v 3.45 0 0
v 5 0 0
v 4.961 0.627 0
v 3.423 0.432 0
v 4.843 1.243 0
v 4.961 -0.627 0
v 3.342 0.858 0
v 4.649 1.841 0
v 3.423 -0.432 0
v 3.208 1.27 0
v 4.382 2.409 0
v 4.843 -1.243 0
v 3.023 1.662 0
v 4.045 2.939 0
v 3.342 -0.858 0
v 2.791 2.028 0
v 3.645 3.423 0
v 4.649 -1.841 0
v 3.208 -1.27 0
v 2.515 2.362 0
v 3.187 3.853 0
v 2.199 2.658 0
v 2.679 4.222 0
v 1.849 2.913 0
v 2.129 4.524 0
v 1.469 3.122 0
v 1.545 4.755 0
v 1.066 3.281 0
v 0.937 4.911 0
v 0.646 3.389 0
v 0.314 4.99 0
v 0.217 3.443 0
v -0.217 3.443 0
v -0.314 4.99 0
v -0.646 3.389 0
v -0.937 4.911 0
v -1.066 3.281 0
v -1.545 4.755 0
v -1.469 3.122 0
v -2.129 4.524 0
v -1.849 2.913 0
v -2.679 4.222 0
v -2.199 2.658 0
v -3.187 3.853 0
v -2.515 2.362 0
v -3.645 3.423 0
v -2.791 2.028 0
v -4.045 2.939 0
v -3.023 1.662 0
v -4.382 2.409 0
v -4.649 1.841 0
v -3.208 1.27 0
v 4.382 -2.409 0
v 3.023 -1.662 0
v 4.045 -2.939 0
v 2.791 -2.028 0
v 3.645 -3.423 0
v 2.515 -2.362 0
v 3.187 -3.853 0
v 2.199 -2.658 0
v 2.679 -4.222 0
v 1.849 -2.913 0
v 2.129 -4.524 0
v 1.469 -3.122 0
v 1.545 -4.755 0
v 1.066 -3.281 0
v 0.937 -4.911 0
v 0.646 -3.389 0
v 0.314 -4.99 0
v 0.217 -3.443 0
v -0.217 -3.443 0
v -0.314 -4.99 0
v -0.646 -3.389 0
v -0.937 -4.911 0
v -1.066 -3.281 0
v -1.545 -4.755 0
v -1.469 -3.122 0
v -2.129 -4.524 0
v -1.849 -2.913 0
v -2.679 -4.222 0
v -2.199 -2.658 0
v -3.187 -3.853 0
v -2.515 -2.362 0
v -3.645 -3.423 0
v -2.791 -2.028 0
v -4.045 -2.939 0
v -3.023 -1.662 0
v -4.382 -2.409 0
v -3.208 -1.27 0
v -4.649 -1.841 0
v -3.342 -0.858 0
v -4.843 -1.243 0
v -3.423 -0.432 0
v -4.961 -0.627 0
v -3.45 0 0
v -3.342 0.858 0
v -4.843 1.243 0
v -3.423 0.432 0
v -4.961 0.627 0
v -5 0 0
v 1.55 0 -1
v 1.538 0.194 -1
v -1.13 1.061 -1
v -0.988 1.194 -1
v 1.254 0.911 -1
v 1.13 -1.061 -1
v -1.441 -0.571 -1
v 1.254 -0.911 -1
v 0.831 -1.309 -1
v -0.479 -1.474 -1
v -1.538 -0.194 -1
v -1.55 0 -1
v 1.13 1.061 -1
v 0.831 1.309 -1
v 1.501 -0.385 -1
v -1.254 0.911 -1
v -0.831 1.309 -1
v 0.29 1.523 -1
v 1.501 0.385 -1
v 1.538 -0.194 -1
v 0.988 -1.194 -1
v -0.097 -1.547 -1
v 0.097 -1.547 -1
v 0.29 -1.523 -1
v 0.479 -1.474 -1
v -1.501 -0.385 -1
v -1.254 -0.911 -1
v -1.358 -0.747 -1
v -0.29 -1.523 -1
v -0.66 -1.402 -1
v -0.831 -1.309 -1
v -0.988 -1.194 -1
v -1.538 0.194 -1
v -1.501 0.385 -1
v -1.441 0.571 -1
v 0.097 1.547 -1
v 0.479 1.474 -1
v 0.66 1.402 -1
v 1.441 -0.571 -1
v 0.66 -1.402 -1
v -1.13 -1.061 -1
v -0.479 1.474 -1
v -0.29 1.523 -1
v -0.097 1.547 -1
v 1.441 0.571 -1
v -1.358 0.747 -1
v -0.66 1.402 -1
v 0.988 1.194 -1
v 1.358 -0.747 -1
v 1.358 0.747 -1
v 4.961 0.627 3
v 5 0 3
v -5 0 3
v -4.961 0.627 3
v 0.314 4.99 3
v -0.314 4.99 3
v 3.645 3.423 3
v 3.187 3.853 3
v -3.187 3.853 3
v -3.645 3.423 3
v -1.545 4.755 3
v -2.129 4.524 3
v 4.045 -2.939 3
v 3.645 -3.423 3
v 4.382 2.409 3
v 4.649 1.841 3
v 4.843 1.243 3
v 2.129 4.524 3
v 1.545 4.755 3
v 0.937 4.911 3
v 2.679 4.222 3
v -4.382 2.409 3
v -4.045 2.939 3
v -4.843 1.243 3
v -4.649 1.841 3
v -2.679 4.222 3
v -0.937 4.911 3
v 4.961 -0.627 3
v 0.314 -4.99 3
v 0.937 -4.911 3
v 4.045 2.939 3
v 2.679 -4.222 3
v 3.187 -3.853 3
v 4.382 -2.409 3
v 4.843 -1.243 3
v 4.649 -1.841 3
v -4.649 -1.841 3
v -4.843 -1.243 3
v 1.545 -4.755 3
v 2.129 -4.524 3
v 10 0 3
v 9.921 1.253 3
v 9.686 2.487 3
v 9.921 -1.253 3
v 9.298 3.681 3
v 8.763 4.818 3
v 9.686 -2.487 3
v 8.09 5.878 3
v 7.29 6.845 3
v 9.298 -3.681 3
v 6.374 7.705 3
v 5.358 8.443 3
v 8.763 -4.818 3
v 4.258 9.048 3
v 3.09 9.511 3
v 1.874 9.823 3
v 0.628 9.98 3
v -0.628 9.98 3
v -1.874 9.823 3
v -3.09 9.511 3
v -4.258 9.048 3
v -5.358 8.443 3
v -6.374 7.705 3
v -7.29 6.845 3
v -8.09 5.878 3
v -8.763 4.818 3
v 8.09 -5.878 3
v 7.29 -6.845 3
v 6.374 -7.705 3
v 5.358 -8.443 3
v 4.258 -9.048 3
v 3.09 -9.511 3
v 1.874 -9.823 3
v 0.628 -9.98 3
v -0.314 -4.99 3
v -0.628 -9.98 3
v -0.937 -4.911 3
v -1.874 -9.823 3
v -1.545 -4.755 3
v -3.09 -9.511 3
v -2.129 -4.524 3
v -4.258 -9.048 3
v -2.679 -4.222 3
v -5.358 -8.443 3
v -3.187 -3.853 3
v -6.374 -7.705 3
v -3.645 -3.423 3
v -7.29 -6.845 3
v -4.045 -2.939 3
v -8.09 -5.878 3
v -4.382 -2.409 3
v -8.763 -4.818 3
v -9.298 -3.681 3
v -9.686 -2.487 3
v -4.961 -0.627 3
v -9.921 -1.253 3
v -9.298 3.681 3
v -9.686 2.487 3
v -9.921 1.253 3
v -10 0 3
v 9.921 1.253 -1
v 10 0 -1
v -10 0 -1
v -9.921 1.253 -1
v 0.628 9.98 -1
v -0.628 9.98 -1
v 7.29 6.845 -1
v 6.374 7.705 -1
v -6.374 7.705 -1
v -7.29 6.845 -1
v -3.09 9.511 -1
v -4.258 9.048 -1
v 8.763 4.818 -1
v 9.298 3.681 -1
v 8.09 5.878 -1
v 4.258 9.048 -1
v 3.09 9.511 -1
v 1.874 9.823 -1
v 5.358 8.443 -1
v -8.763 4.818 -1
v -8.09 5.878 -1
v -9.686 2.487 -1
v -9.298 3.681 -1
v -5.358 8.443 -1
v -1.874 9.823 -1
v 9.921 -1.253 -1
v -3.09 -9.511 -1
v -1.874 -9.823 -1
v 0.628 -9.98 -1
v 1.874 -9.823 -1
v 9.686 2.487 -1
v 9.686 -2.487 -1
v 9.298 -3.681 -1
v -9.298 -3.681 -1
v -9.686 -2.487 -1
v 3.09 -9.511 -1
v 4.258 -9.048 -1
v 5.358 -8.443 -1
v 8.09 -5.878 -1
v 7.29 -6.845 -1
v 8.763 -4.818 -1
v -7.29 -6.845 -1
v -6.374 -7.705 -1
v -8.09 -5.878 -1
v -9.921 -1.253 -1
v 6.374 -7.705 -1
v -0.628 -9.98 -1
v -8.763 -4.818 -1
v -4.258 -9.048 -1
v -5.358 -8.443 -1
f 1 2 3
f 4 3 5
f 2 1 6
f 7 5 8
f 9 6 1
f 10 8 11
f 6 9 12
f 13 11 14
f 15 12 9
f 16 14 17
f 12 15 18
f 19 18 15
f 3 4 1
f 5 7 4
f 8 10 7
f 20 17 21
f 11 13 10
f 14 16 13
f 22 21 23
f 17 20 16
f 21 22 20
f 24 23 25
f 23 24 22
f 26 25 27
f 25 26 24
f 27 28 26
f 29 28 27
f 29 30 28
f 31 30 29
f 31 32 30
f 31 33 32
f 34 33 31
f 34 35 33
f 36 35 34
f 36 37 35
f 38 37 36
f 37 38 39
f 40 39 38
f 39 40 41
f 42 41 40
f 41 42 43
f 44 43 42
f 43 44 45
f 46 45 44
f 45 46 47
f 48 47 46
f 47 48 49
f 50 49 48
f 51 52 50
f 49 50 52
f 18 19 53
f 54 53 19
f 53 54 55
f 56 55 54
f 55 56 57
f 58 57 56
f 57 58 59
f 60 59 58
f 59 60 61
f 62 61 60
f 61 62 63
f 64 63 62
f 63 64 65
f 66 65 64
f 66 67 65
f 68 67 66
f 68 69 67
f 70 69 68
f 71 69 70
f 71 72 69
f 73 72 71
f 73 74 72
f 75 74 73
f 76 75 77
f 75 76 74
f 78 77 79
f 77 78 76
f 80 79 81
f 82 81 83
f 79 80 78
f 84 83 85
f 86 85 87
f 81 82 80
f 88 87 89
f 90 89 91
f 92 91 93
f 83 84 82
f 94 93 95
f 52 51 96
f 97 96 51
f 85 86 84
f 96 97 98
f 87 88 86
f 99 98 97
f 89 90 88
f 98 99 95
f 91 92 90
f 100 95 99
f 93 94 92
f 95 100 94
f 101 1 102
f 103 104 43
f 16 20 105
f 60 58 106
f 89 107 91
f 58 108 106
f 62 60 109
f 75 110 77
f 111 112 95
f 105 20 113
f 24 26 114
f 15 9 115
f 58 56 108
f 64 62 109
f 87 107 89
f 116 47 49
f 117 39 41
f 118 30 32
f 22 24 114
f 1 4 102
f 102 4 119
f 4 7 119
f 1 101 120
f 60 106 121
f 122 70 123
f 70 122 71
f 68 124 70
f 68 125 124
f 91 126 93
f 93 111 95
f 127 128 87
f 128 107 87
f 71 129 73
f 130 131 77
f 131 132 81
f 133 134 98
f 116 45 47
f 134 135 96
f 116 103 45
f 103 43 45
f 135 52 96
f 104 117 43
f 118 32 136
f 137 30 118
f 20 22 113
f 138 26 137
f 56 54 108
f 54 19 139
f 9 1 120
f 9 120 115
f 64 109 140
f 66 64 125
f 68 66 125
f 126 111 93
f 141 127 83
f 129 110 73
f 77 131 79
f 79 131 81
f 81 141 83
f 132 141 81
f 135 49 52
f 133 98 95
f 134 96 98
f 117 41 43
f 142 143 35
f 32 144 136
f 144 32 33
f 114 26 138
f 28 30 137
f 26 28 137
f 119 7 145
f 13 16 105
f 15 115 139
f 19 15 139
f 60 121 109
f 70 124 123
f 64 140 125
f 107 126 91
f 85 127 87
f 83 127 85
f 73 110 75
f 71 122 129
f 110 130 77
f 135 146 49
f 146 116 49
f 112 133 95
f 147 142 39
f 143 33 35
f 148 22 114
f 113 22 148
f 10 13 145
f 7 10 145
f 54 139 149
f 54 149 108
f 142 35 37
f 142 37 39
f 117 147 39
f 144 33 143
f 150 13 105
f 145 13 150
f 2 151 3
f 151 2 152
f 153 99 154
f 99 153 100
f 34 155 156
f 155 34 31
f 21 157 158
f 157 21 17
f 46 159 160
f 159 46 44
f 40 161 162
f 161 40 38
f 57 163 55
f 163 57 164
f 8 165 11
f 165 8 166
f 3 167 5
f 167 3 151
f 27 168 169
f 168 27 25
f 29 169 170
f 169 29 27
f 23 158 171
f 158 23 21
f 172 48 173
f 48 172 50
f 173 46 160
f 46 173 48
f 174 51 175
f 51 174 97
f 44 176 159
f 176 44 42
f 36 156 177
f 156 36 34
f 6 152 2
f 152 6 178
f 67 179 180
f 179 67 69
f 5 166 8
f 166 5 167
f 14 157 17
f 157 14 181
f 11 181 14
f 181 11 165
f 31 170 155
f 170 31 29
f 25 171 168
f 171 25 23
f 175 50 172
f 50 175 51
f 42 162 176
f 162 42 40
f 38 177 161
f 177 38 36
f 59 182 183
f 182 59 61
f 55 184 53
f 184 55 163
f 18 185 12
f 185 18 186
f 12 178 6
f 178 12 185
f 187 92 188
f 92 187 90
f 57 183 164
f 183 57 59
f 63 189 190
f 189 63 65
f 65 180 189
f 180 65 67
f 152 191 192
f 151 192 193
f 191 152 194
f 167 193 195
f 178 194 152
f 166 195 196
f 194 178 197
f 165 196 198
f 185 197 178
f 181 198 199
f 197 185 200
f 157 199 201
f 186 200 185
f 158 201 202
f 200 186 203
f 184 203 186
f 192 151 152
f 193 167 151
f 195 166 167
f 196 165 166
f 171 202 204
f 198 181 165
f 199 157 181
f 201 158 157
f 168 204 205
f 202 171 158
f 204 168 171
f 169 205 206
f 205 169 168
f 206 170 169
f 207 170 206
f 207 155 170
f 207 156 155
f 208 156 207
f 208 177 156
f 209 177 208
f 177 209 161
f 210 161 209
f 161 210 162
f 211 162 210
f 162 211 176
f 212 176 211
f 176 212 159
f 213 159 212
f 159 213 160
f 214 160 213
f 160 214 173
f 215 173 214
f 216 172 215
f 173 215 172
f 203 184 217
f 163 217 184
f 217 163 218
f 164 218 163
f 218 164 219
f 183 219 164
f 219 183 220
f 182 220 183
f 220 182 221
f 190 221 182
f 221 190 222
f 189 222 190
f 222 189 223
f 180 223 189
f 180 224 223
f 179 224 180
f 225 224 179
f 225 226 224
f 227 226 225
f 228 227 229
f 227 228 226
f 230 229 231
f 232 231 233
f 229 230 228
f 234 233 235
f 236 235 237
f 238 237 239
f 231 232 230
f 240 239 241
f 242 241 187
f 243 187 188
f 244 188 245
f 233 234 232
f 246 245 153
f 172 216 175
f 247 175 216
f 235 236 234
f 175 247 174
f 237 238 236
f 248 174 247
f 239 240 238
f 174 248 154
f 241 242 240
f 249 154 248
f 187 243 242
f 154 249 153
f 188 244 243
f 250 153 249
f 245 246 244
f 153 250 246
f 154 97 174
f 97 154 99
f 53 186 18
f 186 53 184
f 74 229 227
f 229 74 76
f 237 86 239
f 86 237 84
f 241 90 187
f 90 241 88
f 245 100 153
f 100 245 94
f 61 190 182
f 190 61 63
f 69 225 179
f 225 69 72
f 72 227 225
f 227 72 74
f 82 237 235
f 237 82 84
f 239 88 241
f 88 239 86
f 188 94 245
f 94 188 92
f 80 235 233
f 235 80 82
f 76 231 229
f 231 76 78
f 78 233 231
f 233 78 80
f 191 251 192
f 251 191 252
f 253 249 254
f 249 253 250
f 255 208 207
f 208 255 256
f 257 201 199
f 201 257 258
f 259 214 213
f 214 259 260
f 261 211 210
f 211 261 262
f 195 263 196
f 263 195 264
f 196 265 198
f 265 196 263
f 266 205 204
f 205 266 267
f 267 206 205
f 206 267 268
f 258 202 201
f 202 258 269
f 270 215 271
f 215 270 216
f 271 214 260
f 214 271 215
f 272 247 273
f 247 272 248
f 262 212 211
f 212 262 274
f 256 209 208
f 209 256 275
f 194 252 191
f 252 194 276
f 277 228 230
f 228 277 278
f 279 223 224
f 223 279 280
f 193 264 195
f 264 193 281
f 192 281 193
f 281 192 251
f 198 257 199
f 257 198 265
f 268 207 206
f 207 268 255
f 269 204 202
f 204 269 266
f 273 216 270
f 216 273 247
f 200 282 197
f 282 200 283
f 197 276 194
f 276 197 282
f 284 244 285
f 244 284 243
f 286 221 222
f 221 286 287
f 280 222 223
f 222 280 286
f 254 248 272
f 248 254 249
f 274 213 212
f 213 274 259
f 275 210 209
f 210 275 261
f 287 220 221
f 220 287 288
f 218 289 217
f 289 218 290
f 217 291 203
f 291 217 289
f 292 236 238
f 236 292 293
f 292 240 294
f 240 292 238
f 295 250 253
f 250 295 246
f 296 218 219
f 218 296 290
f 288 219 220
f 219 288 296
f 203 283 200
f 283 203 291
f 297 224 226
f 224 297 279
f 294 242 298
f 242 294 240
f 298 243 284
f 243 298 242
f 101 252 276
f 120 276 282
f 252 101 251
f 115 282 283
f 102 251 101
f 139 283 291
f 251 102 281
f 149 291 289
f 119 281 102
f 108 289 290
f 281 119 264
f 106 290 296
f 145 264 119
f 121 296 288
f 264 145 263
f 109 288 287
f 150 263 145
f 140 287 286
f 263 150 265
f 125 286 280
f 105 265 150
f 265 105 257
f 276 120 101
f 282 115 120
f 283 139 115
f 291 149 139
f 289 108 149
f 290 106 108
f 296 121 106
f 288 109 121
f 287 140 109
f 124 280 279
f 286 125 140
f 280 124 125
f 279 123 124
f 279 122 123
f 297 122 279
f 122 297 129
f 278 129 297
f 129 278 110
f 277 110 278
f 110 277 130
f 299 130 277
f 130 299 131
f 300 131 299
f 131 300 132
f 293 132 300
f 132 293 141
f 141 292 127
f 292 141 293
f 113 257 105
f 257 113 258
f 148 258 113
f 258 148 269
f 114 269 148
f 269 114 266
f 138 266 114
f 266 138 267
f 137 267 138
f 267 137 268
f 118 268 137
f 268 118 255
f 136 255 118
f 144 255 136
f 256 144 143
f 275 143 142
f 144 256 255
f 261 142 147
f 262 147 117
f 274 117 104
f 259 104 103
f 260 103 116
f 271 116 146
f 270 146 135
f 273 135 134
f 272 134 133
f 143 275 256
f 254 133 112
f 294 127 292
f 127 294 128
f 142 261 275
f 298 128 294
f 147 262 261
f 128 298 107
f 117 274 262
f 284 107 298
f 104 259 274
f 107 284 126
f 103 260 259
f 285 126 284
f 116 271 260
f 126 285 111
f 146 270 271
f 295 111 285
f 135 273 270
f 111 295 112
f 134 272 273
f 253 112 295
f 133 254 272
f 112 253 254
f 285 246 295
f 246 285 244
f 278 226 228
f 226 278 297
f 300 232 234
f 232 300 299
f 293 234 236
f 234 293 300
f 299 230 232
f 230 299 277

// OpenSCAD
$fn = 50;

difference() {
	union() {
		translate(v = [0, 0, -1.0]) {
			cylinder(h = 4.0, r = 10.0);
		}
	}
	union() {
		translate(v = [0, 0, 0]) {
			rotate(a = [0, 0, 0]) {
				difference() {
					union() {
						translate(v = [0, 0, -4.0]) {
							cylinder(h = 4.0, r = 1.25);
						}
						translate(v = [0, 0, -1.0]) {
							cylinder(h = 1.0, r1 = 1.55, r2 = 3.45);
						}
						translate(v = [0, 0, -4.0]) {
							cylinder(h = 4.0, r = 1.55);
						}
						translate(v = [0, 0, -4.0]) {
							cylinder(h = 4.0, r = 1.25);
						}
					}
					union();
				}
			}
		}
		#cylinder(h = 3, r = 5.0);
	}
}
